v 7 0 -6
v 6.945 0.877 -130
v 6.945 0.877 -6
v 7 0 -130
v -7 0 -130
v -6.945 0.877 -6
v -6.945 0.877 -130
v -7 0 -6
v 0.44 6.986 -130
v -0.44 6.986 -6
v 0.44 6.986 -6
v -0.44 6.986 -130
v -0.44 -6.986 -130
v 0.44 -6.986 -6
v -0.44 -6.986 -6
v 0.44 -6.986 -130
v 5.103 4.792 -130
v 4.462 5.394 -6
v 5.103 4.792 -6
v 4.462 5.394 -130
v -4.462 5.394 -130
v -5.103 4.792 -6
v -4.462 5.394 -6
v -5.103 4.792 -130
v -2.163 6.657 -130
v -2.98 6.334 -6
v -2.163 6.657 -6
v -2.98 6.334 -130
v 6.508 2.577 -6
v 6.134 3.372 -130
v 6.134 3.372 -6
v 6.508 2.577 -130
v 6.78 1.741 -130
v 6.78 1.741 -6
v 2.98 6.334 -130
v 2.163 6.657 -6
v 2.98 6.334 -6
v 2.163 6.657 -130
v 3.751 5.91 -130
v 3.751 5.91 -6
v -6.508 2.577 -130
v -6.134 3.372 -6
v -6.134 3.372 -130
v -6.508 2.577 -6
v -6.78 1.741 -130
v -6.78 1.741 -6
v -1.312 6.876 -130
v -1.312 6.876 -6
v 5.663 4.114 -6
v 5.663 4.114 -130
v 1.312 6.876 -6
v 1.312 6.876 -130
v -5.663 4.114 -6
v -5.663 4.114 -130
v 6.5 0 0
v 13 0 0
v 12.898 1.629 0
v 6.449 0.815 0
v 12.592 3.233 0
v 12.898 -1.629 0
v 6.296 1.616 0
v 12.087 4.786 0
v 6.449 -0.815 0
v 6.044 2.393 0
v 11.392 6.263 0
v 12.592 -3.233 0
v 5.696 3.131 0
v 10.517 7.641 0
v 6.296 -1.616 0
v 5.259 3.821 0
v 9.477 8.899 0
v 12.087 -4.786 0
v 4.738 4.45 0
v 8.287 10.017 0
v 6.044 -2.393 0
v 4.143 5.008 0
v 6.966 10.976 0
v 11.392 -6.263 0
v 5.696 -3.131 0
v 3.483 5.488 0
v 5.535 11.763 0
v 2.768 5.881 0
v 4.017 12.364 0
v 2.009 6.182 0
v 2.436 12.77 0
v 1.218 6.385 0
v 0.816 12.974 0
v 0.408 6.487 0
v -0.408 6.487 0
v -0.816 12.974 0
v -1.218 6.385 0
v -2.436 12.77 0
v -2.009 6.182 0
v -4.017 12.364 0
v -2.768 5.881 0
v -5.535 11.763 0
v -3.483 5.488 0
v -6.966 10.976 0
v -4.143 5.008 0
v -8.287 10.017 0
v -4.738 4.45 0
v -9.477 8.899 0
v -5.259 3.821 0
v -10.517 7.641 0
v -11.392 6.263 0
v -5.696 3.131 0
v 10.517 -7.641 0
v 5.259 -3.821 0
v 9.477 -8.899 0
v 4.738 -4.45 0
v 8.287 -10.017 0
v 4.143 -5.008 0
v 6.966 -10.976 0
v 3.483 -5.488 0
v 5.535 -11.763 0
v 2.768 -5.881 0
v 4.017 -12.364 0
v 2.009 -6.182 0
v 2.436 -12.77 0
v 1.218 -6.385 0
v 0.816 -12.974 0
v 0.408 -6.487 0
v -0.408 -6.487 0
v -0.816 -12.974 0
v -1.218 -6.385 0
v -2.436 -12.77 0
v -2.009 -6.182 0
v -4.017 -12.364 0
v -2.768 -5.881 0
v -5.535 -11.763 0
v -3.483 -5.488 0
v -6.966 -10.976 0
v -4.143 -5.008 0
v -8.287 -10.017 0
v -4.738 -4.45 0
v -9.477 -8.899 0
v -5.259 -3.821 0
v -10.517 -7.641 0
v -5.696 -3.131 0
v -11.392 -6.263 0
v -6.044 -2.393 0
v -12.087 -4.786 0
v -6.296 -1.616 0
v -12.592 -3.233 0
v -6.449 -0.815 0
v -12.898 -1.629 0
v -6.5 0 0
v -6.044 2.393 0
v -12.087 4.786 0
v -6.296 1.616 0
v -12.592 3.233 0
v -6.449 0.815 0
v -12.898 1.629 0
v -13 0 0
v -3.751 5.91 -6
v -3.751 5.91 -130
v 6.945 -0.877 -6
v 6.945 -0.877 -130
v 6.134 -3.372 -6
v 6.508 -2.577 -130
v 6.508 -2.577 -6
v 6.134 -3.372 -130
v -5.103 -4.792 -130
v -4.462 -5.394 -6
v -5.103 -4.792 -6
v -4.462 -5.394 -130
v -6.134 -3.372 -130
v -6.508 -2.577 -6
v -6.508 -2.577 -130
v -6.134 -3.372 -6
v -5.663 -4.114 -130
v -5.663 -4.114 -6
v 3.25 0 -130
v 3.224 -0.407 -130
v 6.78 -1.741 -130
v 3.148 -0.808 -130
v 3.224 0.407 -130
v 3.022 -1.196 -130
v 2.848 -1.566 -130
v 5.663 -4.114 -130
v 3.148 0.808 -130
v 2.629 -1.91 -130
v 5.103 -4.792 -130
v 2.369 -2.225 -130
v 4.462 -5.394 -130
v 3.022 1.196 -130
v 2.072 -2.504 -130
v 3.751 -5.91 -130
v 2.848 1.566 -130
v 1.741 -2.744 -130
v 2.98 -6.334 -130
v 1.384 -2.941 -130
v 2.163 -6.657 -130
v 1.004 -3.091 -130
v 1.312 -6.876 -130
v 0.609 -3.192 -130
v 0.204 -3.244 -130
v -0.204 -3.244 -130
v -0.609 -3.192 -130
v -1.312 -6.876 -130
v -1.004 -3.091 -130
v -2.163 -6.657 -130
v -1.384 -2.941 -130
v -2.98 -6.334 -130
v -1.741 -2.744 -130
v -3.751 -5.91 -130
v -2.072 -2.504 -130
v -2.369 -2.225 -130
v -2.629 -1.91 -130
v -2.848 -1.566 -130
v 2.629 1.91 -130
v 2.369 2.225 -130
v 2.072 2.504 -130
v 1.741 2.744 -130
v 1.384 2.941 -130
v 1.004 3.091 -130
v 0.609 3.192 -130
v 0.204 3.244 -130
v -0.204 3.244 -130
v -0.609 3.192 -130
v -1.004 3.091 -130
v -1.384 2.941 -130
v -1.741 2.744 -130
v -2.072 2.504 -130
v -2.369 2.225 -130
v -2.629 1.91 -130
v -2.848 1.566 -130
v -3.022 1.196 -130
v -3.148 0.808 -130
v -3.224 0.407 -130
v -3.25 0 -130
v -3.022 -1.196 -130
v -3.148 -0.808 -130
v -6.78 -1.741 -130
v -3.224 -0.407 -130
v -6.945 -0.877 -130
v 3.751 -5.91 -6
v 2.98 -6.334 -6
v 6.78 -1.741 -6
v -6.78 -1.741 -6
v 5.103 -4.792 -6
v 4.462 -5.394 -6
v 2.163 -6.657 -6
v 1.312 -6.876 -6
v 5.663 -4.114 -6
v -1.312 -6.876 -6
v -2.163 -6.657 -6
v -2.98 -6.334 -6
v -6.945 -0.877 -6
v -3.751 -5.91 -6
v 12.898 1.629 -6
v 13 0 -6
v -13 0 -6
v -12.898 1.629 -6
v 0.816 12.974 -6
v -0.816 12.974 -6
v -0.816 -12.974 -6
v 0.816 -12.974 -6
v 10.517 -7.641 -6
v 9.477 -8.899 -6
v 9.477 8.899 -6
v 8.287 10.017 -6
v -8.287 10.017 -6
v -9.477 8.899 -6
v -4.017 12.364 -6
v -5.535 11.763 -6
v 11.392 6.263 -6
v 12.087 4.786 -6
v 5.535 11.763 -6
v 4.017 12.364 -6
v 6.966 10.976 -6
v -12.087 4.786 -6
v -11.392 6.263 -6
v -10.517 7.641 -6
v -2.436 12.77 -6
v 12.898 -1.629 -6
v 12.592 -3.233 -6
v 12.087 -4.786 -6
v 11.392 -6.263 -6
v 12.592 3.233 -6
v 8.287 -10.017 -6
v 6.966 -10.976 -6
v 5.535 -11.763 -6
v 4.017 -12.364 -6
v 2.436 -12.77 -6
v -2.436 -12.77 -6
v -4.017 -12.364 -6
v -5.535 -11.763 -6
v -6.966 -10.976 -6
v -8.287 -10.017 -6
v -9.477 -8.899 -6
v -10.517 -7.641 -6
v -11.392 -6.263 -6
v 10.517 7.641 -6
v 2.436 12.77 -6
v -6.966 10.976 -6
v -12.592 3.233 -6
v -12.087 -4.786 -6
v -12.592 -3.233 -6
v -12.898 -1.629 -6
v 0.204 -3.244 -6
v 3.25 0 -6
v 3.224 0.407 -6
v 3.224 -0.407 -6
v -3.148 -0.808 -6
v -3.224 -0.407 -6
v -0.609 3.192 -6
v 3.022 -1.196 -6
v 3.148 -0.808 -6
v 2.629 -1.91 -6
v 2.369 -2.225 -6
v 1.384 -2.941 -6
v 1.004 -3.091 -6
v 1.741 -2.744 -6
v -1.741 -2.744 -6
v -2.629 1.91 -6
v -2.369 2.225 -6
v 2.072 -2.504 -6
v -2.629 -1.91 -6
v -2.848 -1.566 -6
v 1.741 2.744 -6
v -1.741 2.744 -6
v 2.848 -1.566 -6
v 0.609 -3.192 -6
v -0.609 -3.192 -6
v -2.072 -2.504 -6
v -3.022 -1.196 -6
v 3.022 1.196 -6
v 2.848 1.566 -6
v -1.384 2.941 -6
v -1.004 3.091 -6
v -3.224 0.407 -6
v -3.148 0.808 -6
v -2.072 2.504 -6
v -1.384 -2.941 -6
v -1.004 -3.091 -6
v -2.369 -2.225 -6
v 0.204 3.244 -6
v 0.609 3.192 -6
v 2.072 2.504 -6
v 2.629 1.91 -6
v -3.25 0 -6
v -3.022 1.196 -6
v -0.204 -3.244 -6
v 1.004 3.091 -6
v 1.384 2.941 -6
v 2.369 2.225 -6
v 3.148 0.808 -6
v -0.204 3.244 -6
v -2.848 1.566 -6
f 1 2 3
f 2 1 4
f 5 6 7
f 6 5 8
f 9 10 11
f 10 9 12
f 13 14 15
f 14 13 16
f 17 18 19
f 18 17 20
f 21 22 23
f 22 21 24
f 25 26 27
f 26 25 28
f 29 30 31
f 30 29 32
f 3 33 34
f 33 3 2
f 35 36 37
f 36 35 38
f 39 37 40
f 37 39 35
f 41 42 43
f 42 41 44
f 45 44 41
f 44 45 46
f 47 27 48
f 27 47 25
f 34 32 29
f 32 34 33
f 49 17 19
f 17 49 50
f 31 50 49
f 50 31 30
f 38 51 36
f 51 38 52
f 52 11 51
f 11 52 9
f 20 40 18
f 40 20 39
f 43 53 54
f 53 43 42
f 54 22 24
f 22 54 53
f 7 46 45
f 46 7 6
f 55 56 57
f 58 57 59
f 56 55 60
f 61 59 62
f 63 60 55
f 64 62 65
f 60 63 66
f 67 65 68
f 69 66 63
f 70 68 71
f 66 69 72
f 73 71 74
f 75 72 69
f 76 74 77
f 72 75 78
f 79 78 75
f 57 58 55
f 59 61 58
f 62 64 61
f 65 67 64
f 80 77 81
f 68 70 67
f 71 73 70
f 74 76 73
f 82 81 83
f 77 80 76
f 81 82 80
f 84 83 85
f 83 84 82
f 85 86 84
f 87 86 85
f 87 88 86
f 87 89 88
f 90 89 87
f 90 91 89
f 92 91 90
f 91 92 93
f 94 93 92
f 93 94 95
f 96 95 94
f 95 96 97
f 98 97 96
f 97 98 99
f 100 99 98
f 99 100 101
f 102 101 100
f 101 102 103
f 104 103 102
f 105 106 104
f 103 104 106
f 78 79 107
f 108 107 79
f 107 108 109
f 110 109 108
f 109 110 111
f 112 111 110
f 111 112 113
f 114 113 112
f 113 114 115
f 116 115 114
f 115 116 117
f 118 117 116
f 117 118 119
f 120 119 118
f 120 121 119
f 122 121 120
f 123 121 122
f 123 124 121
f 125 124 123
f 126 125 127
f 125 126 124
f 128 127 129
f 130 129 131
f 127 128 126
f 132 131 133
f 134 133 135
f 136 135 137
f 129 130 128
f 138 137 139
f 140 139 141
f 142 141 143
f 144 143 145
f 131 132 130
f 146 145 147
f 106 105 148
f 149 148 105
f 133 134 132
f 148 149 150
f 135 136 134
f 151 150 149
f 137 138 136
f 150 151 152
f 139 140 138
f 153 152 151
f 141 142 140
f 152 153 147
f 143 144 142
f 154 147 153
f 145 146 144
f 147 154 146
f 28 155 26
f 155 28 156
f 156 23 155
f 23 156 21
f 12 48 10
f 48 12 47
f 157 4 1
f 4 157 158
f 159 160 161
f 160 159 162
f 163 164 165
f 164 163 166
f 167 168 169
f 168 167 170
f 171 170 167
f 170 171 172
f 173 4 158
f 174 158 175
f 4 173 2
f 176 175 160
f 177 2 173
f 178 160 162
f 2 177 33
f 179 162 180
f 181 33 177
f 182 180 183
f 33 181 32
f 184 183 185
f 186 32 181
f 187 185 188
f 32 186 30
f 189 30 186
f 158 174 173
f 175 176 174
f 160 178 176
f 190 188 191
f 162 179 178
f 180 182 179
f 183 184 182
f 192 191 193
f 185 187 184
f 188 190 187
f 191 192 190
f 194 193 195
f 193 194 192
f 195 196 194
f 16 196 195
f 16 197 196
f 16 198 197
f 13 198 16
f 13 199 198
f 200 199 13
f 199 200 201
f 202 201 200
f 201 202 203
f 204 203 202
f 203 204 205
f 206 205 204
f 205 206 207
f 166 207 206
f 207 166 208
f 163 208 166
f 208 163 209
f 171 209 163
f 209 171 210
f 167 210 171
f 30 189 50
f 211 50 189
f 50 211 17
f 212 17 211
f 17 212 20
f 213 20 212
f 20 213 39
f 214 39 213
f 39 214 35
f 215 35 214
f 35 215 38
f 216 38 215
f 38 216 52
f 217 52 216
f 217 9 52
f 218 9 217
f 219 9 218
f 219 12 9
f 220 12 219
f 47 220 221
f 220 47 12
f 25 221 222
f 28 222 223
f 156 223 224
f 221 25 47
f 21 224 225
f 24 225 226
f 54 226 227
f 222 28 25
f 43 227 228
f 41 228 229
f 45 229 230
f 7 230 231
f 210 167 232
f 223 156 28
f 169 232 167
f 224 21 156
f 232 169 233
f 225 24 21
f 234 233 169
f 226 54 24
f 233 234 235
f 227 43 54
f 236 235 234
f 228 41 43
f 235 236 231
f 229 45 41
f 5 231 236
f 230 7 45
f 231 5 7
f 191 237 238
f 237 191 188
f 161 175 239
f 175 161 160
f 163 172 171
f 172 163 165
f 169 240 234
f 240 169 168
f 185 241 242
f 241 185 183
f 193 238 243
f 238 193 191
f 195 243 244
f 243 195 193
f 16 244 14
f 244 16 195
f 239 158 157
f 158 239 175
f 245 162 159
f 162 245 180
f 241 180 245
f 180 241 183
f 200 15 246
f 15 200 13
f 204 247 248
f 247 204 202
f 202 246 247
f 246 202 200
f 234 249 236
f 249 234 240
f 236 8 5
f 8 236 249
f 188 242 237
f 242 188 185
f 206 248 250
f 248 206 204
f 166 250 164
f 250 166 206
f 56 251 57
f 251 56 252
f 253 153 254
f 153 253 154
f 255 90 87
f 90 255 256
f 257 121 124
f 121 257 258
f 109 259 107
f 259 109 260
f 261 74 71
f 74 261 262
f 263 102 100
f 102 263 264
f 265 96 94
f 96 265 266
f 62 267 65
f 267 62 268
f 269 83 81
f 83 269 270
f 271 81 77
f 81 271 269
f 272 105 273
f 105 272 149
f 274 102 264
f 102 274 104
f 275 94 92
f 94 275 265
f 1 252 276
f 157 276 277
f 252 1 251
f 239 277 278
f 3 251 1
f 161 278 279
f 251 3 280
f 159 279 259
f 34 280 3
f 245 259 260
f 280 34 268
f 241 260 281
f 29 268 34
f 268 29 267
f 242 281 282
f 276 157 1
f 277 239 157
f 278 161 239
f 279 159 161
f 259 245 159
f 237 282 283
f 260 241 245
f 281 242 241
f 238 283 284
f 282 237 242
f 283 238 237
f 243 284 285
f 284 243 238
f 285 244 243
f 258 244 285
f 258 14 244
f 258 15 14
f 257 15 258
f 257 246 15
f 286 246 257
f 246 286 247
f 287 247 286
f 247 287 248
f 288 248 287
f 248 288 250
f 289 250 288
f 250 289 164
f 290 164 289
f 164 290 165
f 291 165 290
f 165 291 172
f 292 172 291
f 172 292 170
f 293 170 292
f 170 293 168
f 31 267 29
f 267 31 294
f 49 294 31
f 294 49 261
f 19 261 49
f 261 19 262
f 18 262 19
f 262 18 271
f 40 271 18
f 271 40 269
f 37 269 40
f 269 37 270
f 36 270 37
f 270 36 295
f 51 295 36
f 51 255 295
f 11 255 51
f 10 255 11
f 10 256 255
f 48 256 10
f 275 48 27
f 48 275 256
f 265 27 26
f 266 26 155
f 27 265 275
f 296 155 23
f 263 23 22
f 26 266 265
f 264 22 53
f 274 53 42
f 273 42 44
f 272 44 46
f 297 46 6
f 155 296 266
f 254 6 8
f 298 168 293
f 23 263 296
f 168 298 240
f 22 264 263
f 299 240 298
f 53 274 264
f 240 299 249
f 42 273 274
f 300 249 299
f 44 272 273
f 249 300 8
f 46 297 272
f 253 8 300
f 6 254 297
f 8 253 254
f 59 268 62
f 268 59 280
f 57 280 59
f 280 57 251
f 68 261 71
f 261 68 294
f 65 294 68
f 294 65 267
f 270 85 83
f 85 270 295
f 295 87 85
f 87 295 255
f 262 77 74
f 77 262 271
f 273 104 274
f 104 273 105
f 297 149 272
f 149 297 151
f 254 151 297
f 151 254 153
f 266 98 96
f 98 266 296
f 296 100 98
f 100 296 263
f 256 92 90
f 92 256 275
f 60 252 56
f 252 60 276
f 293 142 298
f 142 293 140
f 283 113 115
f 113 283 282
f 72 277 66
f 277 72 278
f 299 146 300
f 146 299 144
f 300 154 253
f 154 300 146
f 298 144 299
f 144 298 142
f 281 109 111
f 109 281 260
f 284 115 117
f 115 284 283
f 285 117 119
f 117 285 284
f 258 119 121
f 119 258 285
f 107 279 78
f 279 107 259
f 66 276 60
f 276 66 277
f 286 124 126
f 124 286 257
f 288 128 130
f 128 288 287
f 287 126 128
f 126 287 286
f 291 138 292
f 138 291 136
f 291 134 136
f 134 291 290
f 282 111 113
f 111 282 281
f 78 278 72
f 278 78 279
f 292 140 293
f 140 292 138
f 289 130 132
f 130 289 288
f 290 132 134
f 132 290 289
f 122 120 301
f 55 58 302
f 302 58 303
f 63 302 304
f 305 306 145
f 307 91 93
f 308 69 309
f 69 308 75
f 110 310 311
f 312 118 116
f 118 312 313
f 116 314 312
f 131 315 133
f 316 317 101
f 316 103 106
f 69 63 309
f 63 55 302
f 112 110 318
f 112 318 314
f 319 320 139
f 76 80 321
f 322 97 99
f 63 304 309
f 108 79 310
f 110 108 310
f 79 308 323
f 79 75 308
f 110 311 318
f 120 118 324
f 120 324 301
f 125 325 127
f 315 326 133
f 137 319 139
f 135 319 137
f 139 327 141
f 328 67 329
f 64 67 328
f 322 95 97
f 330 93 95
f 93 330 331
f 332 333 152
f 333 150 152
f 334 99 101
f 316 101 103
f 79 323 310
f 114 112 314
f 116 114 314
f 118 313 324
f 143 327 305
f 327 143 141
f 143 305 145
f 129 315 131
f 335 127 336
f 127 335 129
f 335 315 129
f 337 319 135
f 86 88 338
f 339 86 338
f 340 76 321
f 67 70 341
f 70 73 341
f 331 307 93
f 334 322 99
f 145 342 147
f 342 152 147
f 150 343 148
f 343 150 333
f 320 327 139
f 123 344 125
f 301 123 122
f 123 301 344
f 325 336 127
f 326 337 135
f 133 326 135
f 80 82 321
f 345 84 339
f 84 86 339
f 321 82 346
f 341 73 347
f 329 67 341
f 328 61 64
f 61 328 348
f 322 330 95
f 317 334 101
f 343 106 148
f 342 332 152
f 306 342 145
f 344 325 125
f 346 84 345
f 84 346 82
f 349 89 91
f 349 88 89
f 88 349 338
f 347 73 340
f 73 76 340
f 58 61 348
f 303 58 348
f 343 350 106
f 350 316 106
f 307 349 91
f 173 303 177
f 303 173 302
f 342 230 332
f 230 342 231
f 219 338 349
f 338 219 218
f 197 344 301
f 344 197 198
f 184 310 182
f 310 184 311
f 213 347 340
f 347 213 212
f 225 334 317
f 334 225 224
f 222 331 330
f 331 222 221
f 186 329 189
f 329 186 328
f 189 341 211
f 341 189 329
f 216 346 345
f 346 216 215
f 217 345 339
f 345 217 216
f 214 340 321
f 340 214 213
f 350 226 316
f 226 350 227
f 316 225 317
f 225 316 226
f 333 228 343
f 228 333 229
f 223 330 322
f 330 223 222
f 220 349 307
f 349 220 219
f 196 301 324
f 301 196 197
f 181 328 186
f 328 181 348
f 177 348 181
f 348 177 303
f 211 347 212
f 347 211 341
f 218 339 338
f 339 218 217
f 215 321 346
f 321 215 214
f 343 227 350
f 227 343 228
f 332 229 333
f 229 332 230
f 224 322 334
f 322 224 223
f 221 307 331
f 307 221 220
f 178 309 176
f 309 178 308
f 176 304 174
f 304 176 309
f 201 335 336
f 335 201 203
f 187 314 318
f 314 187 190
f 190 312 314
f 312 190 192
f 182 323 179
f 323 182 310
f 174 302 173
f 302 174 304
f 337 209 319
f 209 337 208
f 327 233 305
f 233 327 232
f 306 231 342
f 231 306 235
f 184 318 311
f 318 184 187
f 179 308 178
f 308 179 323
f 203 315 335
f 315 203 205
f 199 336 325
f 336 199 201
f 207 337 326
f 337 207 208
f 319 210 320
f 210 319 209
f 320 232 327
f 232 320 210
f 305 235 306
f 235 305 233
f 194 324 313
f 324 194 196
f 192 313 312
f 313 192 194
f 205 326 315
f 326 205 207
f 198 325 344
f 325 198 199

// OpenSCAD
$fn = 50;


difference() {
	union() {
		translate(v = [0, 0, -130.0000000000]) {
			cylinder(h = 130, r = 7.0000000000);
		}
		translate(v = [0, 0, -6.0000000000]) {
			cylinder(h = 6, r = 13.0000000000);
		}
	}
	union() {
		translate(v = [0, 0, 0]) {
			rotate(a = [0, 0, 0]) {
				difference() {
					union() {
						#translate(v = [0, 0, -130.0000000000]) {
							cylinder(h = 130, r = 2.2500000000);
						}
						#translate(v = [0, 0, -6]) {
							cylinder(h = 6, r = 7.0000000000, r1 = 3.2500000000, r2 = 6.5000000000);
						}
						#translate(v = [0, 0, -130.0000000000]) {
							cylinder(h = 130, r = 3.2500000000);
						}
						#translate(v = [0, 0, -130.0000000000]) {
							cylinder(h = 130, r = 2.2500000000);
						}
					}
					union();
				}
			}
		}
	}
}
